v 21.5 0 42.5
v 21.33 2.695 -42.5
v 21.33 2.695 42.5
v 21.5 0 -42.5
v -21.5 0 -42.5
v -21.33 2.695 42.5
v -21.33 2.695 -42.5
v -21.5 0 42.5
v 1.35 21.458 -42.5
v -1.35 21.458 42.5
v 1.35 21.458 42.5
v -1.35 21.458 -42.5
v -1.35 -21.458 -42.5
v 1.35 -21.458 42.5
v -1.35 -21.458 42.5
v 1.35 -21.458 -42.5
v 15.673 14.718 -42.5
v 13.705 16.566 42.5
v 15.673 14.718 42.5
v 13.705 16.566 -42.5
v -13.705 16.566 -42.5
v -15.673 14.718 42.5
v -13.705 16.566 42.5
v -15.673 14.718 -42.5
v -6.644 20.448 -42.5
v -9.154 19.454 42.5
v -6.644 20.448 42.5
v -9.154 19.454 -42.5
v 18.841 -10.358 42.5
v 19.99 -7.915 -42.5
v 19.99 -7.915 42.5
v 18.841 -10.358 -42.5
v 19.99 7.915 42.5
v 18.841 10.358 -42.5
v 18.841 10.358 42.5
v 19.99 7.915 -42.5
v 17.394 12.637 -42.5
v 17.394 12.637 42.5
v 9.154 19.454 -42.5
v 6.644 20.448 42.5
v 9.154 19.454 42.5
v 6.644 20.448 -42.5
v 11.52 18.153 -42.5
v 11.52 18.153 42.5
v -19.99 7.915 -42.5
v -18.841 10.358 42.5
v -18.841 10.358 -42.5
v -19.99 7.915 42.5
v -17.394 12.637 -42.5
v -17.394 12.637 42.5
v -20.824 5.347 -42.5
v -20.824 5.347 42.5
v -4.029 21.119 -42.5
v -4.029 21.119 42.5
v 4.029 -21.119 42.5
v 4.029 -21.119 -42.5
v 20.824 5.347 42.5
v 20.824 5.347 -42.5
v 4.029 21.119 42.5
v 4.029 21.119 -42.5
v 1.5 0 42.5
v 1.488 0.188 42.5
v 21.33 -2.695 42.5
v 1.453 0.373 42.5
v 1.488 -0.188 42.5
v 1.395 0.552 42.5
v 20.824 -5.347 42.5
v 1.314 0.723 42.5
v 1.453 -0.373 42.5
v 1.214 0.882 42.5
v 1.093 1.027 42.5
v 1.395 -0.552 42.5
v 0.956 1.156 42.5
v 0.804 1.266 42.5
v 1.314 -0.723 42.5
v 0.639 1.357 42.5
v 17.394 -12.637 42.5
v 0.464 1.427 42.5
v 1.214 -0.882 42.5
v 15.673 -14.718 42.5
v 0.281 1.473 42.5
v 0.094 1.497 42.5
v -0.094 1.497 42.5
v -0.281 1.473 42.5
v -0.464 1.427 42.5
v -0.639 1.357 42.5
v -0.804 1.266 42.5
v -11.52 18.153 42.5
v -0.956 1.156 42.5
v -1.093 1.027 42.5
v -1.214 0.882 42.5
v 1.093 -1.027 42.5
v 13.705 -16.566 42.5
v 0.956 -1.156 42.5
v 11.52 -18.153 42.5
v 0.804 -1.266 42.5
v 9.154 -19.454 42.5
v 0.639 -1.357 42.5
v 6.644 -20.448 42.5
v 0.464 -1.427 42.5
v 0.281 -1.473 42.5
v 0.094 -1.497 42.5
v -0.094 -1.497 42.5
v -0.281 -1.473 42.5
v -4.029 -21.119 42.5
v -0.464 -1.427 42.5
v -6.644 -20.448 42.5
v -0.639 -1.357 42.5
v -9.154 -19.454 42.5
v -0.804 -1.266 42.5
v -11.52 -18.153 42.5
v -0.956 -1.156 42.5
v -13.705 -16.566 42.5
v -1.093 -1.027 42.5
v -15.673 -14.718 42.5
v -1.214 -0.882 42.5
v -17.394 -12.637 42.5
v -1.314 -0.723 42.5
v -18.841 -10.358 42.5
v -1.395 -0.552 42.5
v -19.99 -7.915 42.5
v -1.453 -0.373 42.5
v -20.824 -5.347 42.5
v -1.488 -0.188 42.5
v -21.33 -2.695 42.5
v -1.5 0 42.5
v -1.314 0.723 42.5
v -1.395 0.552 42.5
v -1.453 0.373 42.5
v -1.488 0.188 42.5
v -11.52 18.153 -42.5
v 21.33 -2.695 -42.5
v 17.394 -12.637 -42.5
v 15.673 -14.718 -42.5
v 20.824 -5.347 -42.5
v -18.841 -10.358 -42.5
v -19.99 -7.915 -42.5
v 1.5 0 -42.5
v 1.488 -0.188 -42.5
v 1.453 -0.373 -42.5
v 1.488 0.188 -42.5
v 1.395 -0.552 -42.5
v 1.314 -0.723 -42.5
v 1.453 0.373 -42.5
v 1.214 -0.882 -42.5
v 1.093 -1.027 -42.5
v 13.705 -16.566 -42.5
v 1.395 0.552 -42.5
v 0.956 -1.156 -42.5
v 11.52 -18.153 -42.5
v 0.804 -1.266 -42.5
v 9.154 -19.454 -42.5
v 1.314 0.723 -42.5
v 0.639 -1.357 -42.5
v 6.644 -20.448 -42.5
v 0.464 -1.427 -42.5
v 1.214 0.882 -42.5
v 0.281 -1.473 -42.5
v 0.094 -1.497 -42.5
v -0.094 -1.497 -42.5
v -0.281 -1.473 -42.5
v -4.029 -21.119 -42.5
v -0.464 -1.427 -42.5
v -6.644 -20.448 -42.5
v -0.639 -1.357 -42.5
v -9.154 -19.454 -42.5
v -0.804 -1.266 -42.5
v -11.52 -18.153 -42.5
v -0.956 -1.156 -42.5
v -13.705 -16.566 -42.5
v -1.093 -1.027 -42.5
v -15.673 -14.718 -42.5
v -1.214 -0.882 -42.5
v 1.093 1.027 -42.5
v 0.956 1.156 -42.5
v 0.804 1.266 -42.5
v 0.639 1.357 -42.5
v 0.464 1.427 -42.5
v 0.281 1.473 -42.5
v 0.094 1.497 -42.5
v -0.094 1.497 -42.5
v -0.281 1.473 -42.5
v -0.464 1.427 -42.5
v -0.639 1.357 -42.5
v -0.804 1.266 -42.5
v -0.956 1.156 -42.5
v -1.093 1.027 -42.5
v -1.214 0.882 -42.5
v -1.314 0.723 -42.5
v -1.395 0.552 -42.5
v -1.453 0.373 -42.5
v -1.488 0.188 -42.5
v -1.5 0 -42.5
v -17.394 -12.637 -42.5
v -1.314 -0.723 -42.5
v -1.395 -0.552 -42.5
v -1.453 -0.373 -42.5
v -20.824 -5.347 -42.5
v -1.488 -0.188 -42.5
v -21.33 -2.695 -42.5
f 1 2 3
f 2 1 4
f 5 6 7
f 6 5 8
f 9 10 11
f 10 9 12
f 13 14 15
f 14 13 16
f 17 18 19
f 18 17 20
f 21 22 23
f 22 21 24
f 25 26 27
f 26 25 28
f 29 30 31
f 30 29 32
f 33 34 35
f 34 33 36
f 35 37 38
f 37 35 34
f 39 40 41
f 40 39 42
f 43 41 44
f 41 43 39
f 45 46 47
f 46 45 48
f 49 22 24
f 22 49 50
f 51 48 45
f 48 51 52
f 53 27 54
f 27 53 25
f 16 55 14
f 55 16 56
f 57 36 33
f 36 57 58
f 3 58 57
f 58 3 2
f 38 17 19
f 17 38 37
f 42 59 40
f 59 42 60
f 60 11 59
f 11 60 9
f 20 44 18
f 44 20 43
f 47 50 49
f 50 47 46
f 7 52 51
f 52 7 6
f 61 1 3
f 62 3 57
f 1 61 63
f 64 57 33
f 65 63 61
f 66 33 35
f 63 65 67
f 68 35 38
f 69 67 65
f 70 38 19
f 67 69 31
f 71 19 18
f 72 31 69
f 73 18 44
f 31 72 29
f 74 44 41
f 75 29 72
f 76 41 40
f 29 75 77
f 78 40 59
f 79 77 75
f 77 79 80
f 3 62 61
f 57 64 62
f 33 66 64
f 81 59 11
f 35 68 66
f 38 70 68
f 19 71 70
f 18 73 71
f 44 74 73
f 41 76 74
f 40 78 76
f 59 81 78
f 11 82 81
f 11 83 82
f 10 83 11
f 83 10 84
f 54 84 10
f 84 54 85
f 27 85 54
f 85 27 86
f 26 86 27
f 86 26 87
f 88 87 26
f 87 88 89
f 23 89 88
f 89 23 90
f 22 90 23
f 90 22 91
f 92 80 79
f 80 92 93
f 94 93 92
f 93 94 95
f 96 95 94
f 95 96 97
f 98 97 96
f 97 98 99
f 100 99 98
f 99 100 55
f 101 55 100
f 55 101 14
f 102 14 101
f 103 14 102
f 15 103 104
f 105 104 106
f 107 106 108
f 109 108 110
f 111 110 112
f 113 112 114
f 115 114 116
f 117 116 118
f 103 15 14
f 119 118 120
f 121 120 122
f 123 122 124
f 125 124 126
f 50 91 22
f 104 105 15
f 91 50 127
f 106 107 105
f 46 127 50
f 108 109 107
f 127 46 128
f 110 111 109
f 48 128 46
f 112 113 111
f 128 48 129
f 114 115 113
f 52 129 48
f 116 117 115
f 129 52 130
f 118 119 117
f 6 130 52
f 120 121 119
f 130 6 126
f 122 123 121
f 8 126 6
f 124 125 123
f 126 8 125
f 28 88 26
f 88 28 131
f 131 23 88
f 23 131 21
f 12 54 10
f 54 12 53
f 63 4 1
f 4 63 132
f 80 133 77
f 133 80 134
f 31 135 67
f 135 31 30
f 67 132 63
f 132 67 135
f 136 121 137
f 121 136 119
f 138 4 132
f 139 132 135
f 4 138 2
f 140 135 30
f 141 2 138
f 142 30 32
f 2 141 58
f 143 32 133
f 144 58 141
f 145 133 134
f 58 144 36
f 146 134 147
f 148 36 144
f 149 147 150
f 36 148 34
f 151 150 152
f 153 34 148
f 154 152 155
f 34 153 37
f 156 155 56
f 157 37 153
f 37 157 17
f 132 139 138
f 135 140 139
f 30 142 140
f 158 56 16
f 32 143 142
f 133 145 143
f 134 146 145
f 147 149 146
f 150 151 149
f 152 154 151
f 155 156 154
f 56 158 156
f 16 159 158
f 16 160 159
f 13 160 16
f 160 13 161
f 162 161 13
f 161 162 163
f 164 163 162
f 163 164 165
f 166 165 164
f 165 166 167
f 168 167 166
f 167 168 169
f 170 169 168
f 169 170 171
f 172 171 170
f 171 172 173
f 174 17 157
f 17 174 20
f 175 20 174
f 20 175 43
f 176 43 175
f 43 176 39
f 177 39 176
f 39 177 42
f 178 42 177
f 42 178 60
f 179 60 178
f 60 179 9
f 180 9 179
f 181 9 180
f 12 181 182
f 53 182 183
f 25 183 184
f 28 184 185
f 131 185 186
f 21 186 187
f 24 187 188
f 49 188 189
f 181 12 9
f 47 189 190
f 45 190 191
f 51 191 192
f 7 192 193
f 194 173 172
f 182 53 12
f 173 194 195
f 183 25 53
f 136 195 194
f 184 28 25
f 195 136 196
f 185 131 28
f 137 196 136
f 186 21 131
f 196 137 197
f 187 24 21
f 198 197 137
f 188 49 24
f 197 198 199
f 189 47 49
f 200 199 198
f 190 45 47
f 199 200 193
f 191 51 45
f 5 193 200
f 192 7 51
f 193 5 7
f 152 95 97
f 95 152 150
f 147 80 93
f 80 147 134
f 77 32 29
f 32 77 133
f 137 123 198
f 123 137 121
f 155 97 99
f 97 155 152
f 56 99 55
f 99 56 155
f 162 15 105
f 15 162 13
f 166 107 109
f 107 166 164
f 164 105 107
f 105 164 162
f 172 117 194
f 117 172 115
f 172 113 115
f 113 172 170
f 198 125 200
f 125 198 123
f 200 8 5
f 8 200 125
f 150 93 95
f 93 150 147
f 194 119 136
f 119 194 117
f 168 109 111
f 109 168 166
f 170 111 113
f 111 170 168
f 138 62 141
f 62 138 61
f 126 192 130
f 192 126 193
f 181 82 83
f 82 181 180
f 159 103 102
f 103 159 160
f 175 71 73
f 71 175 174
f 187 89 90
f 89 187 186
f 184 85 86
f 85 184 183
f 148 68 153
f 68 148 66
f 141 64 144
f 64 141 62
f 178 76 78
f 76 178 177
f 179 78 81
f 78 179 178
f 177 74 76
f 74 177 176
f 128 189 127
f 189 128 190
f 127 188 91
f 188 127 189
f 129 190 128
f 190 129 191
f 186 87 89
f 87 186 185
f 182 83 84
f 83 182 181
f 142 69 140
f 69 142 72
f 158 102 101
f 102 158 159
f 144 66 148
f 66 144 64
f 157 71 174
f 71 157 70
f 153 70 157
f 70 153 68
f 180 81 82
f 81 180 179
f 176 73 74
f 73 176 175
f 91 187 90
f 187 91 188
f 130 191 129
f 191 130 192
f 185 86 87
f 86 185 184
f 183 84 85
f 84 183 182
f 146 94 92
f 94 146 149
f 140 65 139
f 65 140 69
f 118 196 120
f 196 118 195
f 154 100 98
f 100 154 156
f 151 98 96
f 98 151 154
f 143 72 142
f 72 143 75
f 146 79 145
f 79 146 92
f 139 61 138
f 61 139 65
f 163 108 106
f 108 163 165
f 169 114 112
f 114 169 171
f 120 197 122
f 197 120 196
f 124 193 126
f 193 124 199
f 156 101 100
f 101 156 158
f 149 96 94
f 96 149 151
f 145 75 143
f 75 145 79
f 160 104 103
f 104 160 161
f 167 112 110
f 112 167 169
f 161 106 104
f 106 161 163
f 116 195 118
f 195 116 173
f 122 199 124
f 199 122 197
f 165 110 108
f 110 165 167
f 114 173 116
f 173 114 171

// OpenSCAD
$fn = 50;


difference() {
	union() {
		translate(v = [0, 0, -42.5000000000]) {
			cylinder(h = 85, r = 21.5000000000);
		}
	}
	union() {
		translate(v = [0, 0, -100.0000000000]) {
			cylinder(h = 200, r = 1.5000000000);
		}
	}
}
